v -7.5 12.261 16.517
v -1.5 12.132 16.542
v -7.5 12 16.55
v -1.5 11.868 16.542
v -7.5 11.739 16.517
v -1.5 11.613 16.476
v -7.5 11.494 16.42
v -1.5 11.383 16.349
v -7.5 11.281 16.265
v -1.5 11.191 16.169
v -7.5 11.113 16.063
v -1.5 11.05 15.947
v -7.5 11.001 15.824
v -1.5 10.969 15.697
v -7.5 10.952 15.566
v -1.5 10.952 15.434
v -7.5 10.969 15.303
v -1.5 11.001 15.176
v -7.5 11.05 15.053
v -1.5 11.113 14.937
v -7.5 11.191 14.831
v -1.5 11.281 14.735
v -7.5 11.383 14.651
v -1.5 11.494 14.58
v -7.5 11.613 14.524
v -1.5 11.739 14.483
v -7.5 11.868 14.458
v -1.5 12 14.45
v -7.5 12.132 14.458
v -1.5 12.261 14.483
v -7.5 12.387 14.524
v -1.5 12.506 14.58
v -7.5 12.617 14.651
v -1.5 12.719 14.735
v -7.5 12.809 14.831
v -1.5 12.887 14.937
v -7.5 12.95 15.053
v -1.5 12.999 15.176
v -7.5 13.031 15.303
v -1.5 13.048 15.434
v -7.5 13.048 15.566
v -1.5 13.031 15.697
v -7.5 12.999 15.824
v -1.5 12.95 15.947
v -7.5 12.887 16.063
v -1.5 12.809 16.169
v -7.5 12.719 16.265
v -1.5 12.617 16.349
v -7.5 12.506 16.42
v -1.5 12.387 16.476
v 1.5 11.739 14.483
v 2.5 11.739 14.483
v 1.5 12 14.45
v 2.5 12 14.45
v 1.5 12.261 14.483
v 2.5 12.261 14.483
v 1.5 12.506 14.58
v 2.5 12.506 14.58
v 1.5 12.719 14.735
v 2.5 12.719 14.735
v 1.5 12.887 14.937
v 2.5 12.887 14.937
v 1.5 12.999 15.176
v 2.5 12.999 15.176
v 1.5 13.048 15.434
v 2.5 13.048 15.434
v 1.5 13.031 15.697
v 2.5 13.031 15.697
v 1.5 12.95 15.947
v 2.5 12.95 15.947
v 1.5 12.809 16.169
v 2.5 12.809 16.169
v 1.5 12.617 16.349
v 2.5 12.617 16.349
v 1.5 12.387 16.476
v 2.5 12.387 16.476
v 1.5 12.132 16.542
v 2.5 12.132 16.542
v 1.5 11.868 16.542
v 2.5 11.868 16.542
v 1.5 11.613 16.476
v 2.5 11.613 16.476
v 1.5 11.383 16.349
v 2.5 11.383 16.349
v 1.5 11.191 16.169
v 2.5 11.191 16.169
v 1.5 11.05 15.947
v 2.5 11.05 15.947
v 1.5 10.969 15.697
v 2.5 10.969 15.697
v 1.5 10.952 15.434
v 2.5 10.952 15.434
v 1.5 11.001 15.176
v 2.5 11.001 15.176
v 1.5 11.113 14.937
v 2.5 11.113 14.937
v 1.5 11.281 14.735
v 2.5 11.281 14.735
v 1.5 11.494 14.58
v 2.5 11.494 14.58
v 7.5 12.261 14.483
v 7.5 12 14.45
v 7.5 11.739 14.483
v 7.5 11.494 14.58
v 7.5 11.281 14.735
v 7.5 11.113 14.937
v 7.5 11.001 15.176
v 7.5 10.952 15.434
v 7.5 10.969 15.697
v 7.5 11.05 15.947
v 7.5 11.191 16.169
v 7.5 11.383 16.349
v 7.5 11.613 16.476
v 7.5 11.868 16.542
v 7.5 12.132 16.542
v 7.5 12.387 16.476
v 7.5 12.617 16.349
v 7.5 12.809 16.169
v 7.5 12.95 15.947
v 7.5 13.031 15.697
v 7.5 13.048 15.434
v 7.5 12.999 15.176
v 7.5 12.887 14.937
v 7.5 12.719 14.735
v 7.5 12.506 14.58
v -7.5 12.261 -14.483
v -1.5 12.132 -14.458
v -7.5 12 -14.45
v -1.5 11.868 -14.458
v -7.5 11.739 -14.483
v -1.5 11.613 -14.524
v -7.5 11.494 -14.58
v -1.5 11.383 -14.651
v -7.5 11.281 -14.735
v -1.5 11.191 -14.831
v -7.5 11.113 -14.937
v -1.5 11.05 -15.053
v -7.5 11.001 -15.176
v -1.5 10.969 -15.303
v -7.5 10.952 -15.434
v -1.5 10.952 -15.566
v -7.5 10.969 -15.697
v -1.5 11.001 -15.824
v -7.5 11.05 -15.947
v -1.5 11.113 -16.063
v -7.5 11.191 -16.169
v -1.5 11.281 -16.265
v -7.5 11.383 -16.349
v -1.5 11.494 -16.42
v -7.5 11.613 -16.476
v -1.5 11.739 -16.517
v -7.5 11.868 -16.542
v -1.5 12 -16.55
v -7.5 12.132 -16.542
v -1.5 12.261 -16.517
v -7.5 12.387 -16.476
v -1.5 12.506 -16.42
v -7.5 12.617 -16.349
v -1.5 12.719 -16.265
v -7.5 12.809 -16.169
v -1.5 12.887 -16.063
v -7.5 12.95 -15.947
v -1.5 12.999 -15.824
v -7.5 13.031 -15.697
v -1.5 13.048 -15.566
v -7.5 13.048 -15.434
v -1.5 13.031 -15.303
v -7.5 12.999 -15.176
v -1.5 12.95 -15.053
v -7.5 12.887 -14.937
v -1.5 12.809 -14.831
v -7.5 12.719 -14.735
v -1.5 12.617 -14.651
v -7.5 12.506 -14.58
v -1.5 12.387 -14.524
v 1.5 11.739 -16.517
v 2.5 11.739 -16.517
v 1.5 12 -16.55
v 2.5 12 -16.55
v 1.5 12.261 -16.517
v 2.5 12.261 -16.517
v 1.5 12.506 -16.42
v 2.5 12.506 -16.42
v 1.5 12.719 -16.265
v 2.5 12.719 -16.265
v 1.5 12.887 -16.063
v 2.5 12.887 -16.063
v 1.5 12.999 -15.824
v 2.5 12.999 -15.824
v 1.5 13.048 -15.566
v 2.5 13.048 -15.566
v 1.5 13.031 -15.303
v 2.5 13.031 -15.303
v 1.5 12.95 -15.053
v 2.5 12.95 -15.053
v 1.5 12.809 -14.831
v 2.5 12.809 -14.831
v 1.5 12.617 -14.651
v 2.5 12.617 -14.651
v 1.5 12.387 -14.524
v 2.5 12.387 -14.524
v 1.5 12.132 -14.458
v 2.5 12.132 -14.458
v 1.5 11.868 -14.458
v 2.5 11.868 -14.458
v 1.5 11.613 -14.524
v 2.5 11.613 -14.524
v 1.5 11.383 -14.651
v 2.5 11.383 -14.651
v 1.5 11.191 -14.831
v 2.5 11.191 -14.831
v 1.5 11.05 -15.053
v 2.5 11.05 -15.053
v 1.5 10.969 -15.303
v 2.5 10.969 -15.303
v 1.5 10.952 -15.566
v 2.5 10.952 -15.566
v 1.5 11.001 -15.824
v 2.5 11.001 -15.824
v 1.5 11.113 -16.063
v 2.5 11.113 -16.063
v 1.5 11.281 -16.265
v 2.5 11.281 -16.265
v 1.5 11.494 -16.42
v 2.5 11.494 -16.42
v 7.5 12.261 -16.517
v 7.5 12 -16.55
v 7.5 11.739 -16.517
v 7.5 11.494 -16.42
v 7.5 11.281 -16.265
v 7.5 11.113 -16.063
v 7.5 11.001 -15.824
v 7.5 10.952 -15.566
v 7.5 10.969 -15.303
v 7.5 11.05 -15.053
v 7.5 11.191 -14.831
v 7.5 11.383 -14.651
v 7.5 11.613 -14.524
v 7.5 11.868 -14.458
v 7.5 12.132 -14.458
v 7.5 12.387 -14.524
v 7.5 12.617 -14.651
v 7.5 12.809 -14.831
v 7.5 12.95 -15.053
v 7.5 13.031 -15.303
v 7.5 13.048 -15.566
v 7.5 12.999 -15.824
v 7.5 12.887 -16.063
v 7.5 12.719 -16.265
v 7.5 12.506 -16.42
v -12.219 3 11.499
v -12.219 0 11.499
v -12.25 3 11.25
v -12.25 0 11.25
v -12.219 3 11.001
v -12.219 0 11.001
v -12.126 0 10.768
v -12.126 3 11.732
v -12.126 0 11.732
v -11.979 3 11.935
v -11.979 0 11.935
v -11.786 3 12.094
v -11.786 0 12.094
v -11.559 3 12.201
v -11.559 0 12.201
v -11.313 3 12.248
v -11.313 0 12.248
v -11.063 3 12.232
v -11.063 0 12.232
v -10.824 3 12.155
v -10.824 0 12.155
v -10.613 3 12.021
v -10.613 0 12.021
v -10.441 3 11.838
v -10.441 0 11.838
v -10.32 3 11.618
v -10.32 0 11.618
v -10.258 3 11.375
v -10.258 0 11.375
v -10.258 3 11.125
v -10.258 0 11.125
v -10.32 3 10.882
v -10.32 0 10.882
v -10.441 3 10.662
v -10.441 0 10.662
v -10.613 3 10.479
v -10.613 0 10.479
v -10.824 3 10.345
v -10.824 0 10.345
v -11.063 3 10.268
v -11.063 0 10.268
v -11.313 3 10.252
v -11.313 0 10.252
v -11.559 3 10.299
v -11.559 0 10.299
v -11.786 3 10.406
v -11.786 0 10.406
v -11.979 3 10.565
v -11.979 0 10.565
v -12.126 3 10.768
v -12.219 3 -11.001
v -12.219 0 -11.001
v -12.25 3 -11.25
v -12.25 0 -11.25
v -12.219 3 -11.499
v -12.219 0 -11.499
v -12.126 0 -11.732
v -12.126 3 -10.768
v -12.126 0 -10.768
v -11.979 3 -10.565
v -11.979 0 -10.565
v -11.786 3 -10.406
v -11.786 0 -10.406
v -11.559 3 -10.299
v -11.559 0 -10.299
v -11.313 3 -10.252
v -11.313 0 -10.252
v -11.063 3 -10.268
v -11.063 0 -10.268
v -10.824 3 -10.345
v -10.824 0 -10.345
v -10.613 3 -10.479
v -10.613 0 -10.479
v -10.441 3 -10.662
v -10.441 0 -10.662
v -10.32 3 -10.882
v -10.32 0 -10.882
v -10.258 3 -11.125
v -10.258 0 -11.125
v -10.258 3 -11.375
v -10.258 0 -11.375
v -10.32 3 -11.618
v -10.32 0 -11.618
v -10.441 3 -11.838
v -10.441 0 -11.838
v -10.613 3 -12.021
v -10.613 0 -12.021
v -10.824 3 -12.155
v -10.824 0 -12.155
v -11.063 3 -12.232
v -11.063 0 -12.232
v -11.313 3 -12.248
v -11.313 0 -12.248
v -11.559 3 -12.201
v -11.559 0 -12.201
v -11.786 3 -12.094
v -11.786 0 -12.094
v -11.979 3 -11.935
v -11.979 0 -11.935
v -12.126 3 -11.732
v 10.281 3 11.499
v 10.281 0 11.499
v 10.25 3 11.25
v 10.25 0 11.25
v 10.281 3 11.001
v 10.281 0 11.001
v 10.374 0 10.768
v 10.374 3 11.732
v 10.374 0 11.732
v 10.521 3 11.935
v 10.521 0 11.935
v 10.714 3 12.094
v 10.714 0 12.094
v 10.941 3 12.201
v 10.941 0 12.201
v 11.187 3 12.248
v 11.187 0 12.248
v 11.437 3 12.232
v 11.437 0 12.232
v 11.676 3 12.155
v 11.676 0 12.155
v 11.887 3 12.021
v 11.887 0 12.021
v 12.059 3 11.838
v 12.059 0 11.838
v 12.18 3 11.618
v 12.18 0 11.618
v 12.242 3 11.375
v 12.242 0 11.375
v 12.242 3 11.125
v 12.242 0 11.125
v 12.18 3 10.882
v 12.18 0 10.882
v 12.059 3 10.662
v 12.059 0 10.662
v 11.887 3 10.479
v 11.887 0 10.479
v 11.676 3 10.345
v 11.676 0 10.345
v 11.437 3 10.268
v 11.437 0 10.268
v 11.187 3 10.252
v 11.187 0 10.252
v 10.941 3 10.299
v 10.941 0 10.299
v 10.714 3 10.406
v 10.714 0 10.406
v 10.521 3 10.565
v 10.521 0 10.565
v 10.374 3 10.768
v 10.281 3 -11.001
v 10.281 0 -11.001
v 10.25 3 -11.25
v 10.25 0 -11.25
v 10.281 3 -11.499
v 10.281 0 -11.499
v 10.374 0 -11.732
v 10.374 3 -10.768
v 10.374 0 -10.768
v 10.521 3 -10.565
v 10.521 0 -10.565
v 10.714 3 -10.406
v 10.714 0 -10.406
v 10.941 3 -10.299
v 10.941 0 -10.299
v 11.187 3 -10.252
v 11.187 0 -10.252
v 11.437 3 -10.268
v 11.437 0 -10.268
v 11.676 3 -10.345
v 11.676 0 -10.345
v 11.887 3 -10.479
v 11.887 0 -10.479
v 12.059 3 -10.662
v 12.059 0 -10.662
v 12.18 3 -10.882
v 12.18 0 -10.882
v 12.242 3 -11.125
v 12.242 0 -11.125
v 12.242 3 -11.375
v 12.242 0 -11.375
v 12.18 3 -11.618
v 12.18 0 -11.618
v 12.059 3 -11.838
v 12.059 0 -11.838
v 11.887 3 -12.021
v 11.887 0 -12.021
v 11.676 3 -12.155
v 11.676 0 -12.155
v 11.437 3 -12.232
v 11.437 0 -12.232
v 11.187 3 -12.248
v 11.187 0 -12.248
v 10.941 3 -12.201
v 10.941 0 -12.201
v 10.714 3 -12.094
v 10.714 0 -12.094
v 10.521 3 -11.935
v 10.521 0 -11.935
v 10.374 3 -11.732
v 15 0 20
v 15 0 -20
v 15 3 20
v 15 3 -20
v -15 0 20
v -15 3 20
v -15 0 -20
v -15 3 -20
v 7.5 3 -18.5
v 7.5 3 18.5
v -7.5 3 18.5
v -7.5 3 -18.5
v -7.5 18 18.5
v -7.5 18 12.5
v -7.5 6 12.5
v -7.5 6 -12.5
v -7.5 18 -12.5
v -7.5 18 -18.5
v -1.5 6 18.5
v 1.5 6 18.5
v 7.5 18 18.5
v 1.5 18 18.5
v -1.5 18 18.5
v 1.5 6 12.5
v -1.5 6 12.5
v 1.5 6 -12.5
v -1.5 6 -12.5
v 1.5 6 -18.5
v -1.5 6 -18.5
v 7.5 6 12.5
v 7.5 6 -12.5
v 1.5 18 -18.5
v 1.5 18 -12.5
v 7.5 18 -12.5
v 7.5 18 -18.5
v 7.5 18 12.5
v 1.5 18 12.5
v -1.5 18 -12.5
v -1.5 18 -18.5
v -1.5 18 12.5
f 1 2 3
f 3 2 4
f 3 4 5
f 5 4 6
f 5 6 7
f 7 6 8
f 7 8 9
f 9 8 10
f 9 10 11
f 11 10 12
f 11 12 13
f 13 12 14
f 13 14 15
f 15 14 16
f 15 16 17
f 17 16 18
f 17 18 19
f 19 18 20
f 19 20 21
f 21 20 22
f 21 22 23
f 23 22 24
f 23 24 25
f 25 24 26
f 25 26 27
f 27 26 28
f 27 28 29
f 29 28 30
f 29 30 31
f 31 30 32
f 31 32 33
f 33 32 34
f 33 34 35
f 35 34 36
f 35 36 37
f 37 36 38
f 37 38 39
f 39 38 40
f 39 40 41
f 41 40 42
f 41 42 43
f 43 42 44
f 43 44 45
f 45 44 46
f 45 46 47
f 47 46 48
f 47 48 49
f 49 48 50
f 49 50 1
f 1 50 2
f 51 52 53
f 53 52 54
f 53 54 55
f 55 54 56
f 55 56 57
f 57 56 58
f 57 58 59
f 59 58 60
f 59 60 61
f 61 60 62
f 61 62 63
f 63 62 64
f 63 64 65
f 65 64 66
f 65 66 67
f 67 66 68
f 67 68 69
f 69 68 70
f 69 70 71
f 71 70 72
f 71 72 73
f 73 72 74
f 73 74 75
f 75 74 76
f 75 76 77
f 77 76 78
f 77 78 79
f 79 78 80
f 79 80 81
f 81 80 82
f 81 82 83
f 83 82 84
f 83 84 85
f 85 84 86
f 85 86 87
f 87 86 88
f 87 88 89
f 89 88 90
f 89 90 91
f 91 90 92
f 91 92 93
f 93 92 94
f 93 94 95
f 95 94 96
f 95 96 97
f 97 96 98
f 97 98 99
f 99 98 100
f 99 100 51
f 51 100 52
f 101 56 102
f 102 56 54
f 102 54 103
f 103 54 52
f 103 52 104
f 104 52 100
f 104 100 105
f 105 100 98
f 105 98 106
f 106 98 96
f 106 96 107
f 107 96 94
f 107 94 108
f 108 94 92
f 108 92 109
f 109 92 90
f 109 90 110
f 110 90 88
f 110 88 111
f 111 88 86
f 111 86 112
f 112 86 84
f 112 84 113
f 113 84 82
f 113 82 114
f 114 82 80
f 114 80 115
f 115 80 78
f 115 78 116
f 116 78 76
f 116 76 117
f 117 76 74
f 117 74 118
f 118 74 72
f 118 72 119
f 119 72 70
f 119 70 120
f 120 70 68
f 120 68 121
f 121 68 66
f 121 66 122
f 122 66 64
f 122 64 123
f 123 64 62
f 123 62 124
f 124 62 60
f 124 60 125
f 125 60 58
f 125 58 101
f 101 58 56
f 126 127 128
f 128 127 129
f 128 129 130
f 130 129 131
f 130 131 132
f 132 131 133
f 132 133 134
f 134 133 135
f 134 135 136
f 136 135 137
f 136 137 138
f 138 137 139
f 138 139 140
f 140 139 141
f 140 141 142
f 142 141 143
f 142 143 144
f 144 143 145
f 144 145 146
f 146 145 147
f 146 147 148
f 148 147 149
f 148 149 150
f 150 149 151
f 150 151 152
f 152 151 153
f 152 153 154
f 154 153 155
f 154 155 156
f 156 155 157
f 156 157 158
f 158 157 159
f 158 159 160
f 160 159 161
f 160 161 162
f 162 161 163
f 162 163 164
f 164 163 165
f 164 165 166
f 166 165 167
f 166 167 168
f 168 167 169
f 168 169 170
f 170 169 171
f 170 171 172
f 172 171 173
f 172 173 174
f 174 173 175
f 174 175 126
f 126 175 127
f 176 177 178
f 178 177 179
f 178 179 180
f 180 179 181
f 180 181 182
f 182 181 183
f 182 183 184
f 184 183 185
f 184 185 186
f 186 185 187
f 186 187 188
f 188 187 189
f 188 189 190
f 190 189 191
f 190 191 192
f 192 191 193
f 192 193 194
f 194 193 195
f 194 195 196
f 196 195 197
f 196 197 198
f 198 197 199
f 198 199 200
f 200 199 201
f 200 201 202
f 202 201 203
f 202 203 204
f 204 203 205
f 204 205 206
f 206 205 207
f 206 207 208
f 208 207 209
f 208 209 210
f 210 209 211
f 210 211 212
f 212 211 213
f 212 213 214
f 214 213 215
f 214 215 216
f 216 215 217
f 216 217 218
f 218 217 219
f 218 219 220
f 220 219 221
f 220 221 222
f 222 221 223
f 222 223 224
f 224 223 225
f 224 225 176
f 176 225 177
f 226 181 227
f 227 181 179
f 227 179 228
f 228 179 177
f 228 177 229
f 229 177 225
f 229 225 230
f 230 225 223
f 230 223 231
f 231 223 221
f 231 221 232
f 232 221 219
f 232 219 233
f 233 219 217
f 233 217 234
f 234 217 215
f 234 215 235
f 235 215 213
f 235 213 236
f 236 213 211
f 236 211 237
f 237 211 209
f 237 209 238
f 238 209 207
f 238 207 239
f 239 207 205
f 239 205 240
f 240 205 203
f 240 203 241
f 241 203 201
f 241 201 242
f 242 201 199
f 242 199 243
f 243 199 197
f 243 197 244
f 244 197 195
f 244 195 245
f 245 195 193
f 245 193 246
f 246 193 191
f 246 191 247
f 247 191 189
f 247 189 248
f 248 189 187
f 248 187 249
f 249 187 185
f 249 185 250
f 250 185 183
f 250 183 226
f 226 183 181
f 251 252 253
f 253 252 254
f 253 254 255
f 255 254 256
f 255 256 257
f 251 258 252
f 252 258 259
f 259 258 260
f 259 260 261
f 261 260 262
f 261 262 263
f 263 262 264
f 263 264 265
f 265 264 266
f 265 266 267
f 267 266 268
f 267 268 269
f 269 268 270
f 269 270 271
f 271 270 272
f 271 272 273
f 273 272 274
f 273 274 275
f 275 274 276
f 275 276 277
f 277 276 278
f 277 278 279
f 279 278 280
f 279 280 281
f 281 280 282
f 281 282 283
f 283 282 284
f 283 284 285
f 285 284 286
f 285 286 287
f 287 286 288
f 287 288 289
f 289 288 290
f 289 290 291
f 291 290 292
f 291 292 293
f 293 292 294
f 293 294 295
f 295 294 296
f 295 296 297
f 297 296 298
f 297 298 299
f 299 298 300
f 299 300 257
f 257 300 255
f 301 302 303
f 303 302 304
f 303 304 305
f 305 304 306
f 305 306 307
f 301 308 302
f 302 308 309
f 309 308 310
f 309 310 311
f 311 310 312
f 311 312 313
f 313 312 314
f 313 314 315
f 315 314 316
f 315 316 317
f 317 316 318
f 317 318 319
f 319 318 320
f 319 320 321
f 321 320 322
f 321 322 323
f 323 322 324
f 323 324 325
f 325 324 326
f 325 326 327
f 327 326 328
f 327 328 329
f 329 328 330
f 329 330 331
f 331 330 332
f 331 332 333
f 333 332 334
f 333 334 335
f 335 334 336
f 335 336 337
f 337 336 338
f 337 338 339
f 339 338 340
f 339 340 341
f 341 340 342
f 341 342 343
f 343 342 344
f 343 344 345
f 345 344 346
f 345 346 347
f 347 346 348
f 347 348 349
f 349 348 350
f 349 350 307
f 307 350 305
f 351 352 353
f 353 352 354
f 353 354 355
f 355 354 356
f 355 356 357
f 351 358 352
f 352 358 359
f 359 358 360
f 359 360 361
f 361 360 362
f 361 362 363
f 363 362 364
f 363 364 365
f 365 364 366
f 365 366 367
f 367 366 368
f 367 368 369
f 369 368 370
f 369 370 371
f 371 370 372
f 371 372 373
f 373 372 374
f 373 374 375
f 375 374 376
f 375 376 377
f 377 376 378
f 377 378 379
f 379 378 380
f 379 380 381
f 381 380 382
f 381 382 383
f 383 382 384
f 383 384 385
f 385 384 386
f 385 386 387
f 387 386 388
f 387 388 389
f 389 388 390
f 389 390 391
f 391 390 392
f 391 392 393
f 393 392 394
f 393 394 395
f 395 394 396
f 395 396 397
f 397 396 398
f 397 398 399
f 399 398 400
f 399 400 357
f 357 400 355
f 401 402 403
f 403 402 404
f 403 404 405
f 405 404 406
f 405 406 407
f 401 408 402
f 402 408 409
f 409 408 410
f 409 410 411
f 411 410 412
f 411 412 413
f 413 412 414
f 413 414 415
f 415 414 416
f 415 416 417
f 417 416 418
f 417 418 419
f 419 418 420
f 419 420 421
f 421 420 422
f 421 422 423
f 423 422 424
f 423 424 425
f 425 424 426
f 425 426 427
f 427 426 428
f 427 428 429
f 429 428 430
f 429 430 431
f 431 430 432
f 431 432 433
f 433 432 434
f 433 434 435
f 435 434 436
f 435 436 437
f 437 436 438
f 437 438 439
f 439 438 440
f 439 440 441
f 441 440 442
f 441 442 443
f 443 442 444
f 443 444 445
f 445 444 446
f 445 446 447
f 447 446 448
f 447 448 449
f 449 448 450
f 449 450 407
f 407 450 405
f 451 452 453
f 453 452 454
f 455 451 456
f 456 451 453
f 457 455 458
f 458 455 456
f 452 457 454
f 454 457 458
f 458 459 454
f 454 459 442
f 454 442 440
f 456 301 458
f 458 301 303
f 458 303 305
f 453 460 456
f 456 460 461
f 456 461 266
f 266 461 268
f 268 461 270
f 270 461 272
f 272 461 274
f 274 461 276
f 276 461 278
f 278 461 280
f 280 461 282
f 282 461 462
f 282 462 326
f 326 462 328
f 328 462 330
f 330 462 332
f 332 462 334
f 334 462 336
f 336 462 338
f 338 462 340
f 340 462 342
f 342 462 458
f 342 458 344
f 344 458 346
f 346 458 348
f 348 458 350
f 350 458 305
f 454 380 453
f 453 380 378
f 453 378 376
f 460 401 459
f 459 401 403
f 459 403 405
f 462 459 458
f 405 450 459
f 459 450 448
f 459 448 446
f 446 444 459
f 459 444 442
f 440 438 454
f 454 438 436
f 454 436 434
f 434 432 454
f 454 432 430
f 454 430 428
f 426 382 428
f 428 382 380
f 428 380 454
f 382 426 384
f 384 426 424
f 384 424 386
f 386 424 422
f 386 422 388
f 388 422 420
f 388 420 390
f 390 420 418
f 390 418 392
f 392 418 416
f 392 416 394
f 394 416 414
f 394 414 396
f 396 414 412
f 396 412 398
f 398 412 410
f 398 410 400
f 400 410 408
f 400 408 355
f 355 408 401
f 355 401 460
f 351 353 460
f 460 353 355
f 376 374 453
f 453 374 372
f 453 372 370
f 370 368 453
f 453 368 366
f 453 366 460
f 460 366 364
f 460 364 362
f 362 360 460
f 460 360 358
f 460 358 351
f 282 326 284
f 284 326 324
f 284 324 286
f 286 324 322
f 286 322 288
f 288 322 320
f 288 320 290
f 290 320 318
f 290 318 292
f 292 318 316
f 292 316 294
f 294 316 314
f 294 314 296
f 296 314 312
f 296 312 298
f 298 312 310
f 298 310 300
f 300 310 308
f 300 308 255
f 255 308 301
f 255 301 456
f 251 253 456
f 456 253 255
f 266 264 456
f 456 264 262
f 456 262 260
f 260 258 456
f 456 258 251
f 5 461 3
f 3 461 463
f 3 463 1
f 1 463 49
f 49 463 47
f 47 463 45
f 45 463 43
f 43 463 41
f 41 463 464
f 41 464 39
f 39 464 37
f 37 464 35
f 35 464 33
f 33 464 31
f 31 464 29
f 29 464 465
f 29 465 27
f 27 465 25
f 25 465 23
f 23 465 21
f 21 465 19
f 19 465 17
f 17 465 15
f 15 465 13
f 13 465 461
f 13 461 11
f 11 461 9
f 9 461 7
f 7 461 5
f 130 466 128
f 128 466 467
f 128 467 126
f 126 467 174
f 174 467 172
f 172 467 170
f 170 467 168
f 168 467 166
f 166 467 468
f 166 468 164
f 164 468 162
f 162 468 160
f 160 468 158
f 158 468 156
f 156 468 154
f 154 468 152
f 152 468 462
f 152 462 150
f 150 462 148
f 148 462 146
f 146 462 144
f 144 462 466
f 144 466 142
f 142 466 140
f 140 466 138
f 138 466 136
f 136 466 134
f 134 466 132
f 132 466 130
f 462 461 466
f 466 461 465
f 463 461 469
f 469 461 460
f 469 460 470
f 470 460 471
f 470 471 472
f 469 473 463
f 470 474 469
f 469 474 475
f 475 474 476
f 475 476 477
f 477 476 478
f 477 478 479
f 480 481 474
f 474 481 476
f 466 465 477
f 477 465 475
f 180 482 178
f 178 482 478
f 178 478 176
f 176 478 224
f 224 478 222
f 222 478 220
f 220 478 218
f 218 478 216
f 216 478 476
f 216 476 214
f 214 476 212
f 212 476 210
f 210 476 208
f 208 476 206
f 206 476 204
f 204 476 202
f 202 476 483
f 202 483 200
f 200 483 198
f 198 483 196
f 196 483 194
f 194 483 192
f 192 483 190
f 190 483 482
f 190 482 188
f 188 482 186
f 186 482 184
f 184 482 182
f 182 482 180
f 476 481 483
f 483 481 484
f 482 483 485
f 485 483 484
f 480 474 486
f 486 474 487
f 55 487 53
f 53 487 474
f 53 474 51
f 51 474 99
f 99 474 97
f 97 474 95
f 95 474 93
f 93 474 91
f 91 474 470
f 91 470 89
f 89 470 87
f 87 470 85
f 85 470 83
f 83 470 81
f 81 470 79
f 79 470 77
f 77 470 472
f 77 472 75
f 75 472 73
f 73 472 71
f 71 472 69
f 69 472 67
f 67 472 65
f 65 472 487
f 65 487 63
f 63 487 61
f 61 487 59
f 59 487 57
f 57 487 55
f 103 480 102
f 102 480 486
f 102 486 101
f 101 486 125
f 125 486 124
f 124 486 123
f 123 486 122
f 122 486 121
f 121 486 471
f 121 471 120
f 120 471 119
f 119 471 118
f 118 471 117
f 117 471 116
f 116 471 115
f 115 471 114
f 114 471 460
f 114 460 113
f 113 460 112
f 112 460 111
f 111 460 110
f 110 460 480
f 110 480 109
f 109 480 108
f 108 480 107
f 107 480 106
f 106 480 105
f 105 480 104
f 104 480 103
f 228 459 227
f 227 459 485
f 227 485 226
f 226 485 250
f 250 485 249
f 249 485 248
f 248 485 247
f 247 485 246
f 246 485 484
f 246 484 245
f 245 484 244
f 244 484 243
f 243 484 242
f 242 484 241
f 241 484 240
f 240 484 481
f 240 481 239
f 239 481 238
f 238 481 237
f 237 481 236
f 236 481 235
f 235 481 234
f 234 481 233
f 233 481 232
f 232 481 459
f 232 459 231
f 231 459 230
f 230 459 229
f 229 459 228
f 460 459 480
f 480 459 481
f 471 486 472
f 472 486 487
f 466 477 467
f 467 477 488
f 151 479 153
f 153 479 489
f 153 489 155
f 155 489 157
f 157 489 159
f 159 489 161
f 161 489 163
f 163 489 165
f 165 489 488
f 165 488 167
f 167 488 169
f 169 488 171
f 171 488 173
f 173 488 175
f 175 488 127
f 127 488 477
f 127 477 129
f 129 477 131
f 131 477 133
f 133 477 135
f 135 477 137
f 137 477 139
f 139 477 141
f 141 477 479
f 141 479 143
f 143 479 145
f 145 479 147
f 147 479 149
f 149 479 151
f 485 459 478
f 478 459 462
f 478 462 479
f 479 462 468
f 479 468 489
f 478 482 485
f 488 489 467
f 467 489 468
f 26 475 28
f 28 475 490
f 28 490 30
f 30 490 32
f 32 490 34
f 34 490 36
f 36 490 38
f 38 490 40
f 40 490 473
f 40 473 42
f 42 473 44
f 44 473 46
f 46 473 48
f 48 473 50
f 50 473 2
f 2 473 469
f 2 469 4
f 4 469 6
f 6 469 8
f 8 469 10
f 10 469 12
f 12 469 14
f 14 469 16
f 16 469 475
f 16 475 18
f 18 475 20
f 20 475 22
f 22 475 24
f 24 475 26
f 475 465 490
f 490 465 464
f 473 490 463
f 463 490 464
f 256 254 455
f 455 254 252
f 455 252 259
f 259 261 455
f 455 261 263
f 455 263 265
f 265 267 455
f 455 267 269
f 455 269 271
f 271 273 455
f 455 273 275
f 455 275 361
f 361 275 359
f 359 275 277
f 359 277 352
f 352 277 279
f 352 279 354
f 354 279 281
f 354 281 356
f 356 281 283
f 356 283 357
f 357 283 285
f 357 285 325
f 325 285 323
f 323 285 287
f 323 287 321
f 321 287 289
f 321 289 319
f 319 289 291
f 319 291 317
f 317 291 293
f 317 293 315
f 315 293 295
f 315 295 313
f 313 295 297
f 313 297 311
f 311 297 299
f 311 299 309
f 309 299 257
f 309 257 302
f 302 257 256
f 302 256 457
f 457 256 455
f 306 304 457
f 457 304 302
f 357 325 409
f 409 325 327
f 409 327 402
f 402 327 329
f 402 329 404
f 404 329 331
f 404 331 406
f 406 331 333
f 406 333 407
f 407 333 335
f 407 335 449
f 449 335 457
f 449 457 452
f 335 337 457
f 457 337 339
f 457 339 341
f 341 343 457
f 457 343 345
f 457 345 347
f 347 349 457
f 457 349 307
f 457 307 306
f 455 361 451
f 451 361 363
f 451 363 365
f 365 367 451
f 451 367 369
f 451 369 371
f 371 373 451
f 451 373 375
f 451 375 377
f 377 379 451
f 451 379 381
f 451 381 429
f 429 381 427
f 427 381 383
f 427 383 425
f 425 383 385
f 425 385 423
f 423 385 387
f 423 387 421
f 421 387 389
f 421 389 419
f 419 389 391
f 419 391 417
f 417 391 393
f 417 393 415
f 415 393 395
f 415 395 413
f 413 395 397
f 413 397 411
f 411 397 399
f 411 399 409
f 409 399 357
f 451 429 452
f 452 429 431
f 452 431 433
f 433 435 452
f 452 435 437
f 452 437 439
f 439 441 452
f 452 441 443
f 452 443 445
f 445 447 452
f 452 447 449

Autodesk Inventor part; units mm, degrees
ref_plane "YZ Plane" through (0, 0, 0) normal (1, 0, 0) x (0, 1, 0)
ref_plane "XZ Plane" through (0, 0, 0) normal (0, 1, 0) x (-1, 0, 0)
ref_plane "XY Plane" through (0, 0, 0) normal (0, 0, 1) x (1, 0, 0)
sketch "Sketch1" plane through (0, 0, 0) normal (0, 1, 0) x (-1, 0, 0)
  circle A0 centre (11.25, 11.25) radius 1
  circle A1 centre (11.25, -11.25) radius 1
  circle A2 centre (-11.25, 11.25) radius 1
  circle A3 centre (-11.25, -11.25) radius 1
  line L0 (-7.5, -18.5) -> (7.5, -18.5)
  line L1 (7.5, -18.5) -> (7.5, 18.5)
  line L2 (7.5, 18.5) -> (-7.5, 18.5)
  line L3 (-7.5, 18.5) -> (-7.5, -18.5)
  line L4 (-15, -20) -> (15, -20)
  line L5 (15, -20) -> (15, 20)
  line L6 (15, 20) -> (-15, 20)
  line L7 (-15, 20) -> (-15, -20)
  line L8 (7.5, -18.5) -> (1.5, -18.5)
  line L9 (1.5, -18.5) -> (1.5, -12.5)
  line L10 (1.5, -12.5) -> (7.5, -12.5)
  line L11 (7.5, -12.5) -> (7.5, -18.5)
  line L12 (-7.5, -18.5) -> (-1.5, -18.5)
  line L13 (-1.5, -18.5) -> (-1.5, -12.5)
  line L14 (-1.5, -12.5) -> (-7.5, -12.5)
  line L15 (-7.5, -12.5) -> (-7.5, -18.5)
  line L16 (-7.5, 18.5) -> (-1.5, 18.5)
  line L17 (-1.5, 18.5) -> (-1.5, 12.5)
  line L18 (-1.5, 12.5) -> (-7.5, 12.5)
  line L19 (-7.5, 12.5) -> (-7.5, 18.5)
  line L20 (7.5, 18.5) -> (1.5, 18.5)
  line L21 (1.5, 18.5) -> (1.5, 12.5)
  line L22 (1.5, 12.5) -> (7.5, 12.5)
  line L23 (7.5, 12.5) -> (7.5, 18.5)
  point P0 (0, 0)
extrude "Extrusion7" add sketch "Sketch1" along normal blind 18 contours L3 L14 L13 L0 | L9 L10 L1 L0 | L3 L2 L17 L18 | L22 L21 L2 L1
extrude "Extrusion8" add sketch "Sketch1" along normal blind 6 contours L13 L14 L3 L18 L17 L2 L21 L22 L1 L10 L9 L0
extrude "Extrusion9" add sketch "Sketch1" along normal blind 3
sketch "Sketch4" plane through (-7.5, 18, 12.5) normal (-1, 0, 0) x (0, 0, 1)
  line L0 (-25, -12) -> (-31, -12) projected
  line L1 (-28, -12) -> (-28, -6)
  line L2 (6, -12) -> (0, -12) projected
  line L3 (3, -12) -> (3, -6)
  circle A0 centre (-28, -6) radius 1.05
  circle A1 centre (3, -6) radius 1.05
  point P0 (-12.5, -18)
  dimension "d65" = 6
  dimension "d66" = 6
  dimension "d67" = 2.1
  dimension "d68" = 2.1
extrude "Extrusion10" cut sketch "Sketch4" against normal blind 18
properties part number "camera_plate2"
